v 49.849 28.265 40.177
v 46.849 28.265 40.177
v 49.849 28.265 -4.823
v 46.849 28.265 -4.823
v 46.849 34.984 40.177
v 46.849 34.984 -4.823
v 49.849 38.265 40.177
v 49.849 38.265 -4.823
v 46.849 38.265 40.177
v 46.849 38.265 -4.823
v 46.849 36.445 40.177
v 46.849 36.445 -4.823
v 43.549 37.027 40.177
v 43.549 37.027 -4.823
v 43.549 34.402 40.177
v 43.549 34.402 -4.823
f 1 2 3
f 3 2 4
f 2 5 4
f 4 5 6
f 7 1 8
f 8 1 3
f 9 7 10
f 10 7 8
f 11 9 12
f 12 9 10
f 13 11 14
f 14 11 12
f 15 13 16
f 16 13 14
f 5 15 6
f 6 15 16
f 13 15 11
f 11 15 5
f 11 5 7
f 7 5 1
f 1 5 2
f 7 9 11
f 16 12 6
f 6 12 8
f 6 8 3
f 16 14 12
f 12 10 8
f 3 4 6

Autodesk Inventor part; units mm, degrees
ref_plane "YZ Plane" through (0, 0, 0) normal (1, 0, 0) x (0, 1, 0)
ref_plane "XZ Plane" through (0, 0, 0) normal (0, 1, 0) x (-1, 0, 0)
ref_plane "Work Plane2" through (46.8486, 38.2651, 40.1765) normal (0, 0, 1) x (0, 1, 0)
sketch "Sketch2" plane through (46.8486, 38.2651, 40.1765) normal (0, 0, 1) x (0, 1, 0)
  line L0 (-3.3829, 0) -> (-4, 3.5) projected
  line L1 (-1.6171, 0) -> (-3.3829, 0) projected
  line L2 (-1, 3.5) -> (-1.6171, 0) projected
  line L3 (-4, 3.5) -> (-1, 3.5) projected
  line L4 (-3.8632, 3.3) -> (-3.2813, 0)
  line L5 (-1.8202, 0) -> (-1.2384, 3.3)
  line L6 (-1.2384, 3.3) -> (-3.8632, 3.3)
  line L7 (-1.8202, 0) -> (-1.6171, 0)
  line L8 (0, 0) -> (0, -3)
  line L9 (-3.2813, 0) -> (-3.3829, 0)
  line L10 (-3.3829, 0) -> (-4, 3.5) projected
  line L11 (-4, 3.5) -> (-1, 3.5) projected
  line L12 (-1, 3.5) -> (-1.6171, 0) projected
  line L13 (0, 0) -> (-1.6171, 0) projected
  line L14 (0, 15) -> (0, 0) projected
  line L15 (0, 15) -> (-5, 15) projected
  line L16 (-5, 0) -> (-5, 15) projected
  line L17 (-3.3829, 0) -> (-5, 0) projected
  line L18 (-5, 0) -> (-5, -3)
  line L19 (-5, -3) -> (0, -3)
  line L20 (0, 0) -> (-1.8202, 0)
  line L21 (-3.2813, 0) -> (-5, 0)
  point P0 (-38.2651, 46.8486)
  dimension "d0" = 0.1
  dimension "d1" = 0.2
  dimension "d2" = 3
  dimension "d9" = 90
extrude "Extrusion1" add sketch "Sketch2" against normal blind 45 contours L1 L13 L8 L19 L18 L17 | L4 L6 L5 L1
sketch "Sketch6" plane through (46.8486, 33.2651, 40.1765) normal (0, -1, 0) x (1, 0, 0)
  line L0 (0, 0) -> (0, -45) projected
  line L1 (0, -45) -> (3, -45) projected
  line L2 (0, 0) -> (3, 0)
  line L3 (3, 0) -> (3, -45)
  line L4 (3, -45) -> (0, -45)
  line L5 (0, -45) -> (0, 0)
  point P0 (-46.8486, -40.1765)
extrude "Extrusion2" add sketch "Sketch6" along normal blind 5
properties part number "Rack Gripper"
